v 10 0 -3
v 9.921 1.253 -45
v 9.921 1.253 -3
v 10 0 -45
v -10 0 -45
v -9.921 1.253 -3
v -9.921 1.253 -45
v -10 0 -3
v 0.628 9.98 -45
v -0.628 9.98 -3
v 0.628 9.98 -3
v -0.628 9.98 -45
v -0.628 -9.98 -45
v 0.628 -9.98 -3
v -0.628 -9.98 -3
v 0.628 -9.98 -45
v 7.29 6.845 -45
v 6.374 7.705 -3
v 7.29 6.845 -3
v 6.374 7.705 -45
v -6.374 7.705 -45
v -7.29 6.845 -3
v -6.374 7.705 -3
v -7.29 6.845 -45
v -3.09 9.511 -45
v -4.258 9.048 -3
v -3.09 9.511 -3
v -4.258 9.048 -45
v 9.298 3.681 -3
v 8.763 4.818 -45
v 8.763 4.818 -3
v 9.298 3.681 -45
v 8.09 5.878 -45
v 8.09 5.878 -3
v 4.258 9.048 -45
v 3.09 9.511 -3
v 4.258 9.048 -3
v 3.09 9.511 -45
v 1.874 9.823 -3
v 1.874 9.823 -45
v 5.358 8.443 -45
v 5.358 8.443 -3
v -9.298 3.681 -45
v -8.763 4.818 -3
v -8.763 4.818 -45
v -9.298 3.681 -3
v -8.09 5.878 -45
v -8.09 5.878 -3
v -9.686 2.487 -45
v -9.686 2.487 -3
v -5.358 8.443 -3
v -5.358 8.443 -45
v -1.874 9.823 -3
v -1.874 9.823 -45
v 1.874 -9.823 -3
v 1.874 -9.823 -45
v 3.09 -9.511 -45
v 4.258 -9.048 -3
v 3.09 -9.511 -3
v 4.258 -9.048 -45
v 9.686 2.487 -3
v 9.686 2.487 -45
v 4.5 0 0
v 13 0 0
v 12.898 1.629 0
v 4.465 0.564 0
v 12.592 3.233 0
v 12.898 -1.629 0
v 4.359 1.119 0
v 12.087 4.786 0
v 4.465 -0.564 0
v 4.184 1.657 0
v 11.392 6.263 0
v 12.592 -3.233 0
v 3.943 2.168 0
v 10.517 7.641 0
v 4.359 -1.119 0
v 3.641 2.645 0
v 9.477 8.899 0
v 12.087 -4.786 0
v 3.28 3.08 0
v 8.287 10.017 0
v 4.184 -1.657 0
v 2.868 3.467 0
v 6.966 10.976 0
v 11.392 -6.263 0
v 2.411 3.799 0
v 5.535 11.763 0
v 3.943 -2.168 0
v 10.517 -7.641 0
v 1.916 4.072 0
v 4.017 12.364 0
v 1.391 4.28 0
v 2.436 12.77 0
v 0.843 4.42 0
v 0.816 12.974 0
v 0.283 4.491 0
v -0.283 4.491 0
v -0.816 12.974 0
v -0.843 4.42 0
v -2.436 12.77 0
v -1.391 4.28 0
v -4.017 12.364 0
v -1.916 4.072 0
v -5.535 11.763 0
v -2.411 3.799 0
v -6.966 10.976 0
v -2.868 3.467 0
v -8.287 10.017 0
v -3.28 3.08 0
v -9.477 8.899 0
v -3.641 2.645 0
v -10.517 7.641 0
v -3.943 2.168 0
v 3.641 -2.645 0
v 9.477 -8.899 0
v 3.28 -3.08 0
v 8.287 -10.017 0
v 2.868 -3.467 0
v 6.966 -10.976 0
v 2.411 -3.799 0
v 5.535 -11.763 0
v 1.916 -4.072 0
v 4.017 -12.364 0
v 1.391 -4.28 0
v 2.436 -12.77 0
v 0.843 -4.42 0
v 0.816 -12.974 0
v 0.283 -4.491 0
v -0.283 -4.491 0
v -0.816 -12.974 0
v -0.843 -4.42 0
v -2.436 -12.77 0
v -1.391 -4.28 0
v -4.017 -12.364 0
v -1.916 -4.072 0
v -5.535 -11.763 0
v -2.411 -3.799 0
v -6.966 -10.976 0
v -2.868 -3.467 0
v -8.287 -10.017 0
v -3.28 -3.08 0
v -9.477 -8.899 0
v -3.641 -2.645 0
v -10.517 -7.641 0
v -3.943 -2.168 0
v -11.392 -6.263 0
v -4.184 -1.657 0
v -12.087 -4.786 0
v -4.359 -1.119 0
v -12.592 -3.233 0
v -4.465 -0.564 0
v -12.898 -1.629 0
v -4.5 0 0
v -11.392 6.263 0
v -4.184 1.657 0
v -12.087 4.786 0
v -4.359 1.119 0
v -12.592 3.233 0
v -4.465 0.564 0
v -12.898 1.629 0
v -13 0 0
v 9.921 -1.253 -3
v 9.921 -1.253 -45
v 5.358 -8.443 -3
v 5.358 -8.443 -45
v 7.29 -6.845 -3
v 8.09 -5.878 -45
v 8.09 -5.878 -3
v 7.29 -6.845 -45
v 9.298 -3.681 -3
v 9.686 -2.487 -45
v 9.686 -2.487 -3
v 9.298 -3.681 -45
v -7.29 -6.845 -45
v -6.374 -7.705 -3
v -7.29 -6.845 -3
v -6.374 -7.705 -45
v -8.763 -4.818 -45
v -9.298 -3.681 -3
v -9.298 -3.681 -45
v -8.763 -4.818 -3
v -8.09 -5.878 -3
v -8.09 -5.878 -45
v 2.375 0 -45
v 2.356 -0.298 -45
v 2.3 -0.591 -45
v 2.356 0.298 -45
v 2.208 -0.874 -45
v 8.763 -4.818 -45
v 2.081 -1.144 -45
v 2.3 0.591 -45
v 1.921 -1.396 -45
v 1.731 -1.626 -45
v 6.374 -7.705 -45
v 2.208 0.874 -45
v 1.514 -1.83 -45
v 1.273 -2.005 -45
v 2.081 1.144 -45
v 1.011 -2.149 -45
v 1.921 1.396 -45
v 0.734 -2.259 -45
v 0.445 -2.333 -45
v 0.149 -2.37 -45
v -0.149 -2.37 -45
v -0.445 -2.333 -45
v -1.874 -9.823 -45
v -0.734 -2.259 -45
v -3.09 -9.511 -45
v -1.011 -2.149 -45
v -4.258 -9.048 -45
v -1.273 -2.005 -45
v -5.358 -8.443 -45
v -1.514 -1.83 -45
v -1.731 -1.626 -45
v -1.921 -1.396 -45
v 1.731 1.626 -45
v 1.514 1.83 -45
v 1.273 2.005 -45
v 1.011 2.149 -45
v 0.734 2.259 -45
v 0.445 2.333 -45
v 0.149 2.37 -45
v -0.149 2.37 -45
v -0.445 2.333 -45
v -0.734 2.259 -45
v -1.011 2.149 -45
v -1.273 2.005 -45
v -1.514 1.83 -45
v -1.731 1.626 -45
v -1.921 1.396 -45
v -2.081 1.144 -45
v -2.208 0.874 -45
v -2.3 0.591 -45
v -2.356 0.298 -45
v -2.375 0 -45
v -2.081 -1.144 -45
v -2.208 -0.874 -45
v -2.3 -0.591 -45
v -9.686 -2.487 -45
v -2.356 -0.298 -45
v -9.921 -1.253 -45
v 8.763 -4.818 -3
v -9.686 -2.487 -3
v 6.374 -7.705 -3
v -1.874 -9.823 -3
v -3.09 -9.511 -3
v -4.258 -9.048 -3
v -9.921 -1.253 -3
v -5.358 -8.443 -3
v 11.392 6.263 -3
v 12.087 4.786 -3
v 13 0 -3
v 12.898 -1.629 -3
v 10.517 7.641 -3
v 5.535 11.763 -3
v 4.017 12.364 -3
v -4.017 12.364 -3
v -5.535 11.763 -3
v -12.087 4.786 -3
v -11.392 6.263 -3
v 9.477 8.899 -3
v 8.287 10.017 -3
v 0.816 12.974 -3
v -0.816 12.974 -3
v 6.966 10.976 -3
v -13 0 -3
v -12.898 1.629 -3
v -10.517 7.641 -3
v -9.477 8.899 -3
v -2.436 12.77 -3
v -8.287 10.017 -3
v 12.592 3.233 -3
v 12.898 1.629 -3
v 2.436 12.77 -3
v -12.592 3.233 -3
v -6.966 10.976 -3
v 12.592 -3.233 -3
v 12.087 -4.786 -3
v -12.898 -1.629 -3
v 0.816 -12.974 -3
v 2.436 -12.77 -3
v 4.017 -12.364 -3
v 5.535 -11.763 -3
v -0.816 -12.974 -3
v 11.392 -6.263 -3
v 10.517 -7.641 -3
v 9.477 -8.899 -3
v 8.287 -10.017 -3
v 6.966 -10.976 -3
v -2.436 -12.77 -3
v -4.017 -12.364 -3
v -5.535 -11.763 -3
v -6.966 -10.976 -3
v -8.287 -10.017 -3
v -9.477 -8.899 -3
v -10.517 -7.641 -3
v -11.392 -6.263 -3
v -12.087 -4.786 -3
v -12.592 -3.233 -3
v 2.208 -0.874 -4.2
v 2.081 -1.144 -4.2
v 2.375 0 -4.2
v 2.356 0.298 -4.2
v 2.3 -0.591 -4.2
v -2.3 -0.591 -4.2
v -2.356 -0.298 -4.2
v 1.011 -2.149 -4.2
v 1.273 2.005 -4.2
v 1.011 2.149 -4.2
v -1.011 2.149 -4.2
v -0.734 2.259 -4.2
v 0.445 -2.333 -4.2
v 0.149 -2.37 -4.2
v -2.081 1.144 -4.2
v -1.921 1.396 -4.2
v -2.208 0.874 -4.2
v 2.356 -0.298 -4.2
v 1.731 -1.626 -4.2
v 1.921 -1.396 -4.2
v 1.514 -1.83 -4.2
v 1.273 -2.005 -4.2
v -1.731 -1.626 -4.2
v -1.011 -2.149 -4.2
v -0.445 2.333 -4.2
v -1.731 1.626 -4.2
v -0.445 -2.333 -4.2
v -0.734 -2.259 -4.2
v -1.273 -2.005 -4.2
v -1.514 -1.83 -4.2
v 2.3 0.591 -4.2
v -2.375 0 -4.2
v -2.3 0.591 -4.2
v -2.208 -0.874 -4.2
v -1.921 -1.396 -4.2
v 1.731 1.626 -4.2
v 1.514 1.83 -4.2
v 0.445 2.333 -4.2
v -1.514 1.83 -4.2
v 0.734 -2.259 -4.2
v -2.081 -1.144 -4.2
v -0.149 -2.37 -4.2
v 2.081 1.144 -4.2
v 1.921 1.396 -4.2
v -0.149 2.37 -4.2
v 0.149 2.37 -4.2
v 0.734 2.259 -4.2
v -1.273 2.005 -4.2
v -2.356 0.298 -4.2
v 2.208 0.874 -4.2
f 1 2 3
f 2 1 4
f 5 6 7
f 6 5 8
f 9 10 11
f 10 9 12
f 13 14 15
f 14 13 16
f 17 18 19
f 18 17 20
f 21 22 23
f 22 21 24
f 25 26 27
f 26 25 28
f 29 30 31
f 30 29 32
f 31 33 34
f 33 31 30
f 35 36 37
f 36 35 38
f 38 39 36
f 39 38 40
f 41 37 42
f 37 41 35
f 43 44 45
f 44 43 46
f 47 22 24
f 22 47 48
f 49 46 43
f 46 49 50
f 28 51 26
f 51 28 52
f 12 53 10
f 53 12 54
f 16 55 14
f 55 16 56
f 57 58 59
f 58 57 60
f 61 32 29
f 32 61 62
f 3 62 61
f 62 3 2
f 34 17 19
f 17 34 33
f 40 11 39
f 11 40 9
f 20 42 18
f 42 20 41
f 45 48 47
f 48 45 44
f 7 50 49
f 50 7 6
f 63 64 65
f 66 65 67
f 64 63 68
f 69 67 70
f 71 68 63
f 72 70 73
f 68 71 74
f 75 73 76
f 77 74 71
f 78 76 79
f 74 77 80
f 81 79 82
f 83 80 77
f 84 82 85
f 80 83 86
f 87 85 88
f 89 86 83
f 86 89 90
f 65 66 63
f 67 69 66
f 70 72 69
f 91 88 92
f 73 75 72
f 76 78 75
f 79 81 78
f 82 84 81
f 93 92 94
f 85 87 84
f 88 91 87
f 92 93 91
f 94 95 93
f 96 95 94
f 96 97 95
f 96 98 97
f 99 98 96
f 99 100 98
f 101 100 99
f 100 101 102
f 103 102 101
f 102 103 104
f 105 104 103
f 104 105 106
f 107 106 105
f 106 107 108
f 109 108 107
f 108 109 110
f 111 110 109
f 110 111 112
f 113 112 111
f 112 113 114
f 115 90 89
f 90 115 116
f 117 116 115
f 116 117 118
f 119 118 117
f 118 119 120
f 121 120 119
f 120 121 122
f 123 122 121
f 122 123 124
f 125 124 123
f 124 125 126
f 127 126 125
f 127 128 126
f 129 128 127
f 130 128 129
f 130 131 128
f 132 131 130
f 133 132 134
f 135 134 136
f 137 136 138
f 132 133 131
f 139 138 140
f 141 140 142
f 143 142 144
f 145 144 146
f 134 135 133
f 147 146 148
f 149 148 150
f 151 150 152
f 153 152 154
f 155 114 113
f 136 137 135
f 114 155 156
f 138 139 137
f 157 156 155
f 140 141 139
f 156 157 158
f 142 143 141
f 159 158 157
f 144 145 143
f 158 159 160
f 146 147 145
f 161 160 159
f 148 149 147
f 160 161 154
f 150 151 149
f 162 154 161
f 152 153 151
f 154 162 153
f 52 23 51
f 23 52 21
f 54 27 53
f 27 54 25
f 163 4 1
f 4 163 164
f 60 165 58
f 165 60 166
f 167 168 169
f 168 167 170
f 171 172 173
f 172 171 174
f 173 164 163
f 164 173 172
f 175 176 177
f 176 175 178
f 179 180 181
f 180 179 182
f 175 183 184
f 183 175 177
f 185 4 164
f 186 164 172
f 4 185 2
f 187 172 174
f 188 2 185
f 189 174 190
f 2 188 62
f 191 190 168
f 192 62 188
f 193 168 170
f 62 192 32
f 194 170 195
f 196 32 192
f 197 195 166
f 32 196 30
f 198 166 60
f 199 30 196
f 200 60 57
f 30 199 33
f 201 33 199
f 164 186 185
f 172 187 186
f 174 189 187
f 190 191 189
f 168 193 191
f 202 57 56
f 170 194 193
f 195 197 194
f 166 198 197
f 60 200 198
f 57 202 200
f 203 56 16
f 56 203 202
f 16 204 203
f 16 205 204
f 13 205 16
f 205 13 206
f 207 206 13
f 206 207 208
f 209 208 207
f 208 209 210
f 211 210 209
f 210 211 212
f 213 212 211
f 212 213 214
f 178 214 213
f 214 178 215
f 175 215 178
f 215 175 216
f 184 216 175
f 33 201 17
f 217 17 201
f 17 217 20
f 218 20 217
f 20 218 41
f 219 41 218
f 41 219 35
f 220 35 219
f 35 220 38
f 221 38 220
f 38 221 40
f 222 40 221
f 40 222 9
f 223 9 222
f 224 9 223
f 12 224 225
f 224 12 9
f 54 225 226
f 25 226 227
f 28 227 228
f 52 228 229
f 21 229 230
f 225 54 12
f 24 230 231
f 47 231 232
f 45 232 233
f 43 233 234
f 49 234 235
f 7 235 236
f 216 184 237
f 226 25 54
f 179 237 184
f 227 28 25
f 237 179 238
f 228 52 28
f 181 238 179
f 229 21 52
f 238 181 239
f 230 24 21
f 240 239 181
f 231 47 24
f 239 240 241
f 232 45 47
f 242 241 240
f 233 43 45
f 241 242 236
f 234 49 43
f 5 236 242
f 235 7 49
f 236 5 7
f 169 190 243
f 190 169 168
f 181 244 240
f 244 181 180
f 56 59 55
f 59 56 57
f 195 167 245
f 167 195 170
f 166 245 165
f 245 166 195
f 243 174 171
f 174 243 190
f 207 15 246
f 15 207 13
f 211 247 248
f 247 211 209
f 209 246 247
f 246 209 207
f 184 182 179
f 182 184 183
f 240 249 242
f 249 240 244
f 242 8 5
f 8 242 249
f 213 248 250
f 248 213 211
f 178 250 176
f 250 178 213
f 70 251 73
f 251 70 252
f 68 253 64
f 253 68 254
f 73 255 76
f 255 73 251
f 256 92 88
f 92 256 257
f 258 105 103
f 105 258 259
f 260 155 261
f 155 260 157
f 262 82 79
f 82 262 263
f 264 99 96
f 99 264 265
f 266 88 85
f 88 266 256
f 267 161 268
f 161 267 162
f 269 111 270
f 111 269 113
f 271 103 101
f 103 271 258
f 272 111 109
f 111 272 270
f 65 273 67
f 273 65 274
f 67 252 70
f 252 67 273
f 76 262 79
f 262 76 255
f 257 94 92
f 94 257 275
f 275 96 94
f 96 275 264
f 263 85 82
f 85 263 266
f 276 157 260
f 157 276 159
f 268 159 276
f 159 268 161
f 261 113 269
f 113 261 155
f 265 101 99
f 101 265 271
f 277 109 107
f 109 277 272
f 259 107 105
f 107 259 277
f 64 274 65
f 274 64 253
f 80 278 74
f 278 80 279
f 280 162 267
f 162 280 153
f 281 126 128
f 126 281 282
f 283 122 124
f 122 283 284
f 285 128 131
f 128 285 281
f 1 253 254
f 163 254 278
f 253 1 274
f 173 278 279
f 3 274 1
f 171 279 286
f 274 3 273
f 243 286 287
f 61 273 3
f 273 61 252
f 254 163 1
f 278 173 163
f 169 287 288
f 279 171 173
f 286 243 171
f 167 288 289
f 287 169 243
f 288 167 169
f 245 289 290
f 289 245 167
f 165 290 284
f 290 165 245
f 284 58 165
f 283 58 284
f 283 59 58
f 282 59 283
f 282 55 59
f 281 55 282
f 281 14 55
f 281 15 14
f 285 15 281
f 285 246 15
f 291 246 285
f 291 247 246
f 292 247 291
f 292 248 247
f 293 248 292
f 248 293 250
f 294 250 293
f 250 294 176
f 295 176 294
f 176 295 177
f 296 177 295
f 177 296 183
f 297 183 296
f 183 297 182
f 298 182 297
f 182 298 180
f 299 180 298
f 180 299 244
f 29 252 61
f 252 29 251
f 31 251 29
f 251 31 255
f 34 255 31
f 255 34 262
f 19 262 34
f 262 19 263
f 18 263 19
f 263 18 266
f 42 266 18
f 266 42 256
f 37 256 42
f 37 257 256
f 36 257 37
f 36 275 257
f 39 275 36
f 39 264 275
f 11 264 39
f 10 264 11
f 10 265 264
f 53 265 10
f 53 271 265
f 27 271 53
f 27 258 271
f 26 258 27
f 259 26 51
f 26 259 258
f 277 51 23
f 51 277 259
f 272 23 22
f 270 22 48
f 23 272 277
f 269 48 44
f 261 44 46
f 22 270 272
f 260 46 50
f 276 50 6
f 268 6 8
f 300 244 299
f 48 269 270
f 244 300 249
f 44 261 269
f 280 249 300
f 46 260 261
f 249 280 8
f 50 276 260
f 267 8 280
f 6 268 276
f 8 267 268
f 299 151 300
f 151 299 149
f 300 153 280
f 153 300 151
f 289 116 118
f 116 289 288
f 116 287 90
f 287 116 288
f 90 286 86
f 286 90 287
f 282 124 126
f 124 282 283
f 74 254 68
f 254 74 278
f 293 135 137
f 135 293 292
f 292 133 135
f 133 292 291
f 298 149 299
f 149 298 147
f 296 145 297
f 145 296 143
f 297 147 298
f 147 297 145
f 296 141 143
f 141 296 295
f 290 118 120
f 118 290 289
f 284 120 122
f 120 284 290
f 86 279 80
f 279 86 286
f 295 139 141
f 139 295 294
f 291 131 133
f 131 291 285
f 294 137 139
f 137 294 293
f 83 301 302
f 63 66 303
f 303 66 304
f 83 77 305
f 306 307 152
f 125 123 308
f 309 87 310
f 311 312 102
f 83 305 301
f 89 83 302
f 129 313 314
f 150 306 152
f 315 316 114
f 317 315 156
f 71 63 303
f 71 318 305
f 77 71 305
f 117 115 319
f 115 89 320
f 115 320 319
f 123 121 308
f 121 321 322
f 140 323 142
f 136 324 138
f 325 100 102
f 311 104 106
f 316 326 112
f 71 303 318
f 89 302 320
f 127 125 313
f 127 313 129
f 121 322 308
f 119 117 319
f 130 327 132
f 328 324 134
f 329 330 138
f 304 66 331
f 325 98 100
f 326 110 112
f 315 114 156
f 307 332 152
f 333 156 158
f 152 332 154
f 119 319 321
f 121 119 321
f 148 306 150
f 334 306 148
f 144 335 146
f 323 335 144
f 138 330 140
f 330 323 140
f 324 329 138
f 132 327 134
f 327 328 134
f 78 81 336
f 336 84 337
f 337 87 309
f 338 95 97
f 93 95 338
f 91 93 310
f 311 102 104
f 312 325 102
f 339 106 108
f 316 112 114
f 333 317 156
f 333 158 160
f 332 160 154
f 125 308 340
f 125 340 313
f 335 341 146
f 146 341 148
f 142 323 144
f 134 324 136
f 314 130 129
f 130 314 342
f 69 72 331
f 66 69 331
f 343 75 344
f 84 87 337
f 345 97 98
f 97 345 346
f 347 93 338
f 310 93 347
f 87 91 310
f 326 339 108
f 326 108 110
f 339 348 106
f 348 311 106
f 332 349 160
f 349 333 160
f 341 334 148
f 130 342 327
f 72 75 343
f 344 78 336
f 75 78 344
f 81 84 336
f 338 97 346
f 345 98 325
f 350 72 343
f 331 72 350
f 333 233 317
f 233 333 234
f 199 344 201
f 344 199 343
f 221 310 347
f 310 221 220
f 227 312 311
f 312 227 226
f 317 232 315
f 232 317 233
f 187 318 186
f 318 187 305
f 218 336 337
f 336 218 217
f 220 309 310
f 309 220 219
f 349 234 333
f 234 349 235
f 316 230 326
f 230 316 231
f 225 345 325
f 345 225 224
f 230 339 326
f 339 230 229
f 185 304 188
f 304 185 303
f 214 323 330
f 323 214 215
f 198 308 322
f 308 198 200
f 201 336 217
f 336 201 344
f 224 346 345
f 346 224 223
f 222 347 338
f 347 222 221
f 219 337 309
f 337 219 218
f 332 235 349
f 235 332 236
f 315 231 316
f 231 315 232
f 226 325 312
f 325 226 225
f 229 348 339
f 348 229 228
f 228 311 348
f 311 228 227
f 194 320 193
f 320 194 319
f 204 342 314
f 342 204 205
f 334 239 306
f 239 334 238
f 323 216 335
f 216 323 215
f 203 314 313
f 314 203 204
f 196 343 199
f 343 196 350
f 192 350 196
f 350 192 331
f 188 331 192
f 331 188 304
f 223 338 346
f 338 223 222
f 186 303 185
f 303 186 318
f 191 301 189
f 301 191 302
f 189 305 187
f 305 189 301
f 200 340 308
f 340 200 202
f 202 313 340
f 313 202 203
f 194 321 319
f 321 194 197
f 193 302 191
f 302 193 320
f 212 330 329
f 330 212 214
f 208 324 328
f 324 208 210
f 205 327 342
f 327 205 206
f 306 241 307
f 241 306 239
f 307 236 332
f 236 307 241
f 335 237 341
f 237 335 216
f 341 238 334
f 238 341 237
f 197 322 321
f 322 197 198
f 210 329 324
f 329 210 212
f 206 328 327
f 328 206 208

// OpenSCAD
$fn = 50;


difference() {
	union() {
		translate(v = [0, 0, -45.0000000000]) {
			cylinder(h = 45, r = 10.0000000000);
		}
		translate(v = [0, 0, -3.0000000000]) {
			cylinder(h = 3, r = 13.0000000000);
		}
	}
	union() {
		translate(v = [0, 0, 0]) {
			rotate(a = [0, 0, 0]) {
				difference() {
					union() {
						#translate(v = [0, 0, -45.0000000000]) {
							cylinder(h = 45, r = 2.2500000000);
						}
						#translate(v = [0, 0, -4.2000000000]) {
							cylinder(h = 4.2000000000, r = 10.0000000000, r1 = 2.3750000000, r2 = 4.5000000000);
						}
						#translate(v = [0, 0, -45.0000000000]) {
							cylinder(h = 45, r = 2.3750000000);
						}
						#translate(v = [0, 0, -45.0000000000]) {
							cylinder(h = 45, r = 2.2500000000);
						}
					}
					union();
				}
			}
		}
	}
}
